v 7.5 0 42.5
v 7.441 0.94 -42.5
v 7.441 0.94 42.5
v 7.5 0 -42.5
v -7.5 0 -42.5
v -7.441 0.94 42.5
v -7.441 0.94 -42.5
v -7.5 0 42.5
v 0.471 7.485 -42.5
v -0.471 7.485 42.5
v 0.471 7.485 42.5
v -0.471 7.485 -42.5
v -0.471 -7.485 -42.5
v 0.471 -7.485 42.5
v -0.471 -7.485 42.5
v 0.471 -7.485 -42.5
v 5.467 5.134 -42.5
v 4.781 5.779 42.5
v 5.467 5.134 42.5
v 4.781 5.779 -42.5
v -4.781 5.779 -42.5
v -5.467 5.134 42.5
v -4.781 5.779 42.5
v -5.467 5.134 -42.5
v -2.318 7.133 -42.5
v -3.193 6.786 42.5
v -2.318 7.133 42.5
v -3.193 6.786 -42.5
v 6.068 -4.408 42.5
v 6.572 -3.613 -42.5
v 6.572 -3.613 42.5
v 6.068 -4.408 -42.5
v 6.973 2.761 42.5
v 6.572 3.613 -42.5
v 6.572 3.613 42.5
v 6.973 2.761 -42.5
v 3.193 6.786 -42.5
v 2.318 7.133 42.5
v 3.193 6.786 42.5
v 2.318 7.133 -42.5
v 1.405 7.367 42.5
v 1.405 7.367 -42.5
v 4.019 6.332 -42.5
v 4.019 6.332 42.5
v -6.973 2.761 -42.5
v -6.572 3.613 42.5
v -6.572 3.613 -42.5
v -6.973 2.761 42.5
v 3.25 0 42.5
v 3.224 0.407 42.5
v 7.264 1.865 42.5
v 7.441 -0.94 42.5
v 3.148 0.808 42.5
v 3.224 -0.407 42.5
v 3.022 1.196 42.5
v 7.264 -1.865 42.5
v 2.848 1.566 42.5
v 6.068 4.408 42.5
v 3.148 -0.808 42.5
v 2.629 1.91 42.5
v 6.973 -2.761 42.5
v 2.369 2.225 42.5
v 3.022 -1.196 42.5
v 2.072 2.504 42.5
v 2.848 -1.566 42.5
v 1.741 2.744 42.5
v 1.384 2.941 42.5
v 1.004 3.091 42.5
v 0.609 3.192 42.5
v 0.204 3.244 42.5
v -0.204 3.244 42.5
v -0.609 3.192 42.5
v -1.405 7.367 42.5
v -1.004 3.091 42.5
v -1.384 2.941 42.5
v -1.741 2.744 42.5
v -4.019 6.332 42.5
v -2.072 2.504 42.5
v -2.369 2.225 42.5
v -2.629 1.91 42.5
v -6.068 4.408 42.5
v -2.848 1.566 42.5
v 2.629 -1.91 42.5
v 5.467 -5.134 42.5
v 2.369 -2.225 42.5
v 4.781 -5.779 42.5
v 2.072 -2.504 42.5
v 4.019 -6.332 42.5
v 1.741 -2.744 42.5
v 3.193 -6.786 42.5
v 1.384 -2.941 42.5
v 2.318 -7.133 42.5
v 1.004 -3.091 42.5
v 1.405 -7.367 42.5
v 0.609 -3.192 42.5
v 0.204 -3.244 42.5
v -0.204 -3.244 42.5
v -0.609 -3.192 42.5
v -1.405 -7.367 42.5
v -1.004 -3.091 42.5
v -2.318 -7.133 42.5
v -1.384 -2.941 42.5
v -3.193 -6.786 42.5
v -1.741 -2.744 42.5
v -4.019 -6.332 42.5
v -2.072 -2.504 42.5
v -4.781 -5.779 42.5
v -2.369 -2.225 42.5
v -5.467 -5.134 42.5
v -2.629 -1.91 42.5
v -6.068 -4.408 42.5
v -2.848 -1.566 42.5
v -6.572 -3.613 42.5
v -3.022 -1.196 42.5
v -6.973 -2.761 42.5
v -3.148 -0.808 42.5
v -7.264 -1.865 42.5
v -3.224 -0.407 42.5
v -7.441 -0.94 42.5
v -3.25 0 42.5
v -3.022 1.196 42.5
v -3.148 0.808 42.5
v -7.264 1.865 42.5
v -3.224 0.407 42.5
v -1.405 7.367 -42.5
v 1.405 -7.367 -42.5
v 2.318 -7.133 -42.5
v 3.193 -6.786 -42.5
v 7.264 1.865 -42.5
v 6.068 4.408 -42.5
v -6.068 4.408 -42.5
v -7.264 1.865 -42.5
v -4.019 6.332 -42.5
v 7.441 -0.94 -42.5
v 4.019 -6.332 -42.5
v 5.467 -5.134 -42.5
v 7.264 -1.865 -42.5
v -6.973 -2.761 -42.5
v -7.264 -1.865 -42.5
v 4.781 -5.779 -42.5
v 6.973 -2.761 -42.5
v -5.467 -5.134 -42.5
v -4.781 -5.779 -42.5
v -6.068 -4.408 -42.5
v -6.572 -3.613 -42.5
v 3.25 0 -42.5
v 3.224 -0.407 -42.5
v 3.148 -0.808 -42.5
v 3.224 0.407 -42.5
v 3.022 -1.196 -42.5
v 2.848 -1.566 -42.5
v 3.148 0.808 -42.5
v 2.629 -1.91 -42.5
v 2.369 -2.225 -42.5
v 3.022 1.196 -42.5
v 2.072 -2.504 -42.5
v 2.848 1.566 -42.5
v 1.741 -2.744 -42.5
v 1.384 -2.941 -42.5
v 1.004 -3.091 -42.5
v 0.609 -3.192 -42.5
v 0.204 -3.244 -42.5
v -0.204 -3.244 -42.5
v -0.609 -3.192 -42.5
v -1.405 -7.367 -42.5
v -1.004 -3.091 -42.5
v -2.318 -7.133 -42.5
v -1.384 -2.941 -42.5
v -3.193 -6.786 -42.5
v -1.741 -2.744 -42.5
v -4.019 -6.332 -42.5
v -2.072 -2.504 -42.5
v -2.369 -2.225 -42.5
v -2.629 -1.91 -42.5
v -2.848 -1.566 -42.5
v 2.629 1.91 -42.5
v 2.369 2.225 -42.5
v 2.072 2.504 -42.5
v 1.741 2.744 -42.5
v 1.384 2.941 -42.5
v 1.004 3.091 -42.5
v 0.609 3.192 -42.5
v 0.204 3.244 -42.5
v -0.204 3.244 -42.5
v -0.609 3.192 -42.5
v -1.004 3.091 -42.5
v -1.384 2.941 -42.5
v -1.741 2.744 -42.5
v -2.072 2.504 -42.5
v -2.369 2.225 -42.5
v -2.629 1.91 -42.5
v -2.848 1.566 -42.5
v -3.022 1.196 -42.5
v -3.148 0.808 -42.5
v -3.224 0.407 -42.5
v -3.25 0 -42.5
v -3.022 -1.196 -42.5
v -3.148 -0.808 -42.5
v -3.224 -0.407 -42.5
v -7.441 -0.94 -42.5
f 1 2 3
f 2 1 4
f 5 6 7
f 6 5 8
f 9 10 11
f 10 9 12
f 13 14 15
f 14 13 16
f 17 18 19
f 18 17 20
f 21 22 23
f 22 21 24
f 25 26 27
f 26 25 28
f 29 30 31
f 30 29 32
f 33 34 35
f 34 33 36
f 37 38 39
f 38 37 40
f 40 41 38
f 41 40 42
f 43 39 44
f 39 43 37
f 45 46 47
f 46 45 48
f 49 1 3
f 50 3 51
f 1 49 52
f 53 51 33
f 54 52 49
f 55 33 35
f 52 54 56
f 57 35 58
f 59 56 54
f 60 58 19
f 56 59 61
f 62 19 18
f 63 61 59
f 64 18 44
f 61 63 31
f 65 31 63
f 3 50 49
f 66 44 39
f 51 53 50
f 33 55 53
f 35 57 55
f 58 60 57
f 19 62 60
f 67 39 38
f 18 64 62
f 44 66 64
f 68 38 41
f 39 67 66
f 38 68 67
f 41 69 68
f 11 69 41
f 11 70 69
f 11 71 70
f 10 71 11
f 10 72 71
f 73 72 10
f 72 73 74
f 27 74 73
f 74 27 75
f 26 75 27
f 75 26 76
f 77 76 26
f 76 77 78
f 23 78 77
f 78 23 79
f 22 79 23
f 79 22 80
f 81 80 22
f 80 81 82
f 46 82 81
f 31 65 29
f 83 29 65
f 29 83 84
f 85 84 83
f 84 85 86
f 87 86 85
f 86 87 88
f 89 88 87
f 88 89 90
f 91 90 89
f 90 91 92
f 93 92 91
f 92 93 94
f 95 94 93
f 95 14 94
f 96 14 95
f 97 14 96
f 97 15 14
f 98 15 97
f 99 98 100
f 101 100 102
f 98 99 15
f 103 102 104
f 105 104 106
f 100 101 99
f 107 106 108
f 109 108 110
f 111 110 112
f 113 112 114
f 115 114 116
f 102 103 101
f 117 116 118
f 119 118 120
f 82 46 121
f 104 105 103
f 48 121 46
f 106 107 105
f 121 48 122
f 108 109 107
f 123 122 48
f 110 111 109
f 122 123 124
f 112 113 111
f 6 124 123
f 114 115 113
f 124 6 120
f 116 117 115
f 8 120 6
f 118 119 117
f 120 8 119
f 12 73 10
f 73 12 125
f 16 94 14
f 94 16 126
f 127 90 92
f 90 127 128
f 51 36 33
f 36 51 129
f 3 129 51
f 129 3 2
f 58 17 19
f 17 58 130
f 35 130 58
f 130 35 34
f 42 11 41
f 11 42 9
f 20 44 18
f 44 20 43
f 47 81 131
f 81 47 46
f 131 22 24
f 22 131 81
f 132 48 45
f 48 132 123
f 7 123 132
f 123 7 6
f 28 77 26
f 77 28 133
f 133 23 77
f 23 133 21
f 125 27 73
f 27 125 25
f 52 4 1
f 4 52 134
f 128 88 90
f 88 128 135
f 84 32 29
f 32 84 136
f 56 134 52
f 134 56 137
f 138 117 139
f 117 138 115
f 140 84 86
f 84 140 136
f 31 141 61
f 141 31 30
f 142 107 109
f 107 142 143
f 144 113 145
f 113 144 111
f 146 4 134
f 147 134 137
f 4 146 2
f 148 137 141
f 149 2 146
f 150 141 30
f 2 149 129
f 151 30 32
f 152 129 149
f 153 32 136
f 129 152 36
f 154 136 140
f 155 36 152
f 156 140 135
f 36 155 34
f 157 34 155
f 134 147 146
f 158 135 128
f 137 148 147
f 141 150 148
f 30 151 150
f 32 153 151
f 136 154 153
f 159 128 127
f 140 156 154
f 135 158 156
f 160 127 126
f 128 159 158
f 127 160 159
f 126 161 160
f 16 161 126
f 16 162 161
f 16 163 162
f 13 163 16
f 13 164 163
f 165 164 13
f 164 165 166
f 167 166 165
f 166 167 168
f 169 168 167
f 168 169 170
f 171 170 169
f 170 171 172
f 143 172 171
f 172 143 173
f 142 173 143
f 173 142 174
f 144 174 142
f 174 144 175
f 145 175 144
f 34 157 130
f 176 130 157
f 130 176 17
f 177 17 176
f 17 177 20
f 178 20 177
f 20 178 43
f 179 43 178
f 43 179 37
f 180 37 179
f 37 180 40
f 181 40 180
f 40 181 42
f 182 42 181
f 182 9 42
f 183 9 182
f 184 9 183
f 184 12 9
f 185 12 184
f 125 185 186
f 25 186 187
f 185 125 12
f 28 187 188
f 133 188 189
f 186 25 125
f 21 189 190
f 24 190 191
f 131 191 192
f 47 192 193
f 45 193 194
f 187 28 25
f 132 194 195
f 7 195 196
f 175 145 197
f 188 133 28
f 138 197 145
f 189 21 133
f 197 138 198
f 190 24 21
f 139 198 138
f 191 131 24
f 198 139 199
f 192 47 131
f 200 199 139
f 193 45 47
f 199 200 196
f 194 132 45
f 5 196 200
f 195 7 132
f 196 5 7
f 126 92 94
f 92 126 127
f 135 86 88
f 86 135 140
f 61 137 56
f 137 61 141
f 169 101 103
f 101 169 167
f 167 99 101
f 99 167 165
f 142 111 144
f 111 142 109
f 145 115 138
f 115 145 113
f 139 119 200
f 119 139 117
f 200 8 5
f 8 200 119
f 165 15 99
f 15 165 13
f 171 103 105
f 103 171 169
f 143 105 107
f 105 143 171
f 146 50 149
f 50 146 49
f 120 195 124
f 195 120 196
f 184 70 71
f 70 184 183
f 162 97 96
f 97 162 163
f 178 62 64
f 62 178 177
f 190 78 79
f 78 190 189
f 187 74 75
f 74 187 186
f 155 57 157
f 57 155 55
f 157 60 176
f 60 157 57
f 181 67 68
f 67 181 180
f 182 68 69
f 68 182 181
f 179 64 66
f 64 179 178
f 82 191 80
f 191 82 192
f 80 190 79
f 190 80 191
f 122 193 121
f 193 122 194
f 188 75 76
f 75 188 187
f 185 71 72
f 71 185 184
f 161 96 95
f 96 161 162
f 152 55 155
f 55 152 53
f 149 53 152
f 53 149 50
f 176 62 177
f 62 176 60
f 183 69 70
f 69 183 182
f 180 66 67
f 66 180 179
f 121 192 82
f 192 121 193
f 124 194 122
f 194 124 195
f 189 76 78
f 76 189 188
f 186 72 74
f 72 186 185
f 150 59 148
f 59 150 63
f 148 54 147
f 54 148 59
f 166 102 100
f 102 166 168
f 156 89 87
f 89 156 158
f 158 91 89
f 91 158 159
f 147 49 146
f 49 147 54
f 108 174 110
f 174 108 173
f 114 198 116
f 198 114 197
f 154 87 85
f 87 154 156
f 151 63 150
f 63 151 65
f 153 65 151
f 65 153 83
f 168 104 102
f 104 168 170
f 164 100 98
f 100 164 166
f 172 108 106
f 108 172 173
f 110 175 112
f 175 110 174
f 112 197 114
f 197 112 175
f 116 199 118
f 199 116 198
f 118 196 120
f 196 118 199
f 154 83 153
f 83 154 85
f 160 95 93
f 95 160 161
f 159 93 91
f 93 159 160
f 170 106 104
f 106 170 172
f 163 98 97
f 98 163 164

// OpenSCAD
$fn = 50;


difference() {
	union() {
		translate(v = [0, 0, -42.5000000000]) {
			cylinder(h = 85, r = 7.5000000000);
		}
	}
	union() {
		translate(v = [0, 0, -100.0000000000]) {
			cylinder(h = 200, r = 3.2500000000);
		}
	}
}
